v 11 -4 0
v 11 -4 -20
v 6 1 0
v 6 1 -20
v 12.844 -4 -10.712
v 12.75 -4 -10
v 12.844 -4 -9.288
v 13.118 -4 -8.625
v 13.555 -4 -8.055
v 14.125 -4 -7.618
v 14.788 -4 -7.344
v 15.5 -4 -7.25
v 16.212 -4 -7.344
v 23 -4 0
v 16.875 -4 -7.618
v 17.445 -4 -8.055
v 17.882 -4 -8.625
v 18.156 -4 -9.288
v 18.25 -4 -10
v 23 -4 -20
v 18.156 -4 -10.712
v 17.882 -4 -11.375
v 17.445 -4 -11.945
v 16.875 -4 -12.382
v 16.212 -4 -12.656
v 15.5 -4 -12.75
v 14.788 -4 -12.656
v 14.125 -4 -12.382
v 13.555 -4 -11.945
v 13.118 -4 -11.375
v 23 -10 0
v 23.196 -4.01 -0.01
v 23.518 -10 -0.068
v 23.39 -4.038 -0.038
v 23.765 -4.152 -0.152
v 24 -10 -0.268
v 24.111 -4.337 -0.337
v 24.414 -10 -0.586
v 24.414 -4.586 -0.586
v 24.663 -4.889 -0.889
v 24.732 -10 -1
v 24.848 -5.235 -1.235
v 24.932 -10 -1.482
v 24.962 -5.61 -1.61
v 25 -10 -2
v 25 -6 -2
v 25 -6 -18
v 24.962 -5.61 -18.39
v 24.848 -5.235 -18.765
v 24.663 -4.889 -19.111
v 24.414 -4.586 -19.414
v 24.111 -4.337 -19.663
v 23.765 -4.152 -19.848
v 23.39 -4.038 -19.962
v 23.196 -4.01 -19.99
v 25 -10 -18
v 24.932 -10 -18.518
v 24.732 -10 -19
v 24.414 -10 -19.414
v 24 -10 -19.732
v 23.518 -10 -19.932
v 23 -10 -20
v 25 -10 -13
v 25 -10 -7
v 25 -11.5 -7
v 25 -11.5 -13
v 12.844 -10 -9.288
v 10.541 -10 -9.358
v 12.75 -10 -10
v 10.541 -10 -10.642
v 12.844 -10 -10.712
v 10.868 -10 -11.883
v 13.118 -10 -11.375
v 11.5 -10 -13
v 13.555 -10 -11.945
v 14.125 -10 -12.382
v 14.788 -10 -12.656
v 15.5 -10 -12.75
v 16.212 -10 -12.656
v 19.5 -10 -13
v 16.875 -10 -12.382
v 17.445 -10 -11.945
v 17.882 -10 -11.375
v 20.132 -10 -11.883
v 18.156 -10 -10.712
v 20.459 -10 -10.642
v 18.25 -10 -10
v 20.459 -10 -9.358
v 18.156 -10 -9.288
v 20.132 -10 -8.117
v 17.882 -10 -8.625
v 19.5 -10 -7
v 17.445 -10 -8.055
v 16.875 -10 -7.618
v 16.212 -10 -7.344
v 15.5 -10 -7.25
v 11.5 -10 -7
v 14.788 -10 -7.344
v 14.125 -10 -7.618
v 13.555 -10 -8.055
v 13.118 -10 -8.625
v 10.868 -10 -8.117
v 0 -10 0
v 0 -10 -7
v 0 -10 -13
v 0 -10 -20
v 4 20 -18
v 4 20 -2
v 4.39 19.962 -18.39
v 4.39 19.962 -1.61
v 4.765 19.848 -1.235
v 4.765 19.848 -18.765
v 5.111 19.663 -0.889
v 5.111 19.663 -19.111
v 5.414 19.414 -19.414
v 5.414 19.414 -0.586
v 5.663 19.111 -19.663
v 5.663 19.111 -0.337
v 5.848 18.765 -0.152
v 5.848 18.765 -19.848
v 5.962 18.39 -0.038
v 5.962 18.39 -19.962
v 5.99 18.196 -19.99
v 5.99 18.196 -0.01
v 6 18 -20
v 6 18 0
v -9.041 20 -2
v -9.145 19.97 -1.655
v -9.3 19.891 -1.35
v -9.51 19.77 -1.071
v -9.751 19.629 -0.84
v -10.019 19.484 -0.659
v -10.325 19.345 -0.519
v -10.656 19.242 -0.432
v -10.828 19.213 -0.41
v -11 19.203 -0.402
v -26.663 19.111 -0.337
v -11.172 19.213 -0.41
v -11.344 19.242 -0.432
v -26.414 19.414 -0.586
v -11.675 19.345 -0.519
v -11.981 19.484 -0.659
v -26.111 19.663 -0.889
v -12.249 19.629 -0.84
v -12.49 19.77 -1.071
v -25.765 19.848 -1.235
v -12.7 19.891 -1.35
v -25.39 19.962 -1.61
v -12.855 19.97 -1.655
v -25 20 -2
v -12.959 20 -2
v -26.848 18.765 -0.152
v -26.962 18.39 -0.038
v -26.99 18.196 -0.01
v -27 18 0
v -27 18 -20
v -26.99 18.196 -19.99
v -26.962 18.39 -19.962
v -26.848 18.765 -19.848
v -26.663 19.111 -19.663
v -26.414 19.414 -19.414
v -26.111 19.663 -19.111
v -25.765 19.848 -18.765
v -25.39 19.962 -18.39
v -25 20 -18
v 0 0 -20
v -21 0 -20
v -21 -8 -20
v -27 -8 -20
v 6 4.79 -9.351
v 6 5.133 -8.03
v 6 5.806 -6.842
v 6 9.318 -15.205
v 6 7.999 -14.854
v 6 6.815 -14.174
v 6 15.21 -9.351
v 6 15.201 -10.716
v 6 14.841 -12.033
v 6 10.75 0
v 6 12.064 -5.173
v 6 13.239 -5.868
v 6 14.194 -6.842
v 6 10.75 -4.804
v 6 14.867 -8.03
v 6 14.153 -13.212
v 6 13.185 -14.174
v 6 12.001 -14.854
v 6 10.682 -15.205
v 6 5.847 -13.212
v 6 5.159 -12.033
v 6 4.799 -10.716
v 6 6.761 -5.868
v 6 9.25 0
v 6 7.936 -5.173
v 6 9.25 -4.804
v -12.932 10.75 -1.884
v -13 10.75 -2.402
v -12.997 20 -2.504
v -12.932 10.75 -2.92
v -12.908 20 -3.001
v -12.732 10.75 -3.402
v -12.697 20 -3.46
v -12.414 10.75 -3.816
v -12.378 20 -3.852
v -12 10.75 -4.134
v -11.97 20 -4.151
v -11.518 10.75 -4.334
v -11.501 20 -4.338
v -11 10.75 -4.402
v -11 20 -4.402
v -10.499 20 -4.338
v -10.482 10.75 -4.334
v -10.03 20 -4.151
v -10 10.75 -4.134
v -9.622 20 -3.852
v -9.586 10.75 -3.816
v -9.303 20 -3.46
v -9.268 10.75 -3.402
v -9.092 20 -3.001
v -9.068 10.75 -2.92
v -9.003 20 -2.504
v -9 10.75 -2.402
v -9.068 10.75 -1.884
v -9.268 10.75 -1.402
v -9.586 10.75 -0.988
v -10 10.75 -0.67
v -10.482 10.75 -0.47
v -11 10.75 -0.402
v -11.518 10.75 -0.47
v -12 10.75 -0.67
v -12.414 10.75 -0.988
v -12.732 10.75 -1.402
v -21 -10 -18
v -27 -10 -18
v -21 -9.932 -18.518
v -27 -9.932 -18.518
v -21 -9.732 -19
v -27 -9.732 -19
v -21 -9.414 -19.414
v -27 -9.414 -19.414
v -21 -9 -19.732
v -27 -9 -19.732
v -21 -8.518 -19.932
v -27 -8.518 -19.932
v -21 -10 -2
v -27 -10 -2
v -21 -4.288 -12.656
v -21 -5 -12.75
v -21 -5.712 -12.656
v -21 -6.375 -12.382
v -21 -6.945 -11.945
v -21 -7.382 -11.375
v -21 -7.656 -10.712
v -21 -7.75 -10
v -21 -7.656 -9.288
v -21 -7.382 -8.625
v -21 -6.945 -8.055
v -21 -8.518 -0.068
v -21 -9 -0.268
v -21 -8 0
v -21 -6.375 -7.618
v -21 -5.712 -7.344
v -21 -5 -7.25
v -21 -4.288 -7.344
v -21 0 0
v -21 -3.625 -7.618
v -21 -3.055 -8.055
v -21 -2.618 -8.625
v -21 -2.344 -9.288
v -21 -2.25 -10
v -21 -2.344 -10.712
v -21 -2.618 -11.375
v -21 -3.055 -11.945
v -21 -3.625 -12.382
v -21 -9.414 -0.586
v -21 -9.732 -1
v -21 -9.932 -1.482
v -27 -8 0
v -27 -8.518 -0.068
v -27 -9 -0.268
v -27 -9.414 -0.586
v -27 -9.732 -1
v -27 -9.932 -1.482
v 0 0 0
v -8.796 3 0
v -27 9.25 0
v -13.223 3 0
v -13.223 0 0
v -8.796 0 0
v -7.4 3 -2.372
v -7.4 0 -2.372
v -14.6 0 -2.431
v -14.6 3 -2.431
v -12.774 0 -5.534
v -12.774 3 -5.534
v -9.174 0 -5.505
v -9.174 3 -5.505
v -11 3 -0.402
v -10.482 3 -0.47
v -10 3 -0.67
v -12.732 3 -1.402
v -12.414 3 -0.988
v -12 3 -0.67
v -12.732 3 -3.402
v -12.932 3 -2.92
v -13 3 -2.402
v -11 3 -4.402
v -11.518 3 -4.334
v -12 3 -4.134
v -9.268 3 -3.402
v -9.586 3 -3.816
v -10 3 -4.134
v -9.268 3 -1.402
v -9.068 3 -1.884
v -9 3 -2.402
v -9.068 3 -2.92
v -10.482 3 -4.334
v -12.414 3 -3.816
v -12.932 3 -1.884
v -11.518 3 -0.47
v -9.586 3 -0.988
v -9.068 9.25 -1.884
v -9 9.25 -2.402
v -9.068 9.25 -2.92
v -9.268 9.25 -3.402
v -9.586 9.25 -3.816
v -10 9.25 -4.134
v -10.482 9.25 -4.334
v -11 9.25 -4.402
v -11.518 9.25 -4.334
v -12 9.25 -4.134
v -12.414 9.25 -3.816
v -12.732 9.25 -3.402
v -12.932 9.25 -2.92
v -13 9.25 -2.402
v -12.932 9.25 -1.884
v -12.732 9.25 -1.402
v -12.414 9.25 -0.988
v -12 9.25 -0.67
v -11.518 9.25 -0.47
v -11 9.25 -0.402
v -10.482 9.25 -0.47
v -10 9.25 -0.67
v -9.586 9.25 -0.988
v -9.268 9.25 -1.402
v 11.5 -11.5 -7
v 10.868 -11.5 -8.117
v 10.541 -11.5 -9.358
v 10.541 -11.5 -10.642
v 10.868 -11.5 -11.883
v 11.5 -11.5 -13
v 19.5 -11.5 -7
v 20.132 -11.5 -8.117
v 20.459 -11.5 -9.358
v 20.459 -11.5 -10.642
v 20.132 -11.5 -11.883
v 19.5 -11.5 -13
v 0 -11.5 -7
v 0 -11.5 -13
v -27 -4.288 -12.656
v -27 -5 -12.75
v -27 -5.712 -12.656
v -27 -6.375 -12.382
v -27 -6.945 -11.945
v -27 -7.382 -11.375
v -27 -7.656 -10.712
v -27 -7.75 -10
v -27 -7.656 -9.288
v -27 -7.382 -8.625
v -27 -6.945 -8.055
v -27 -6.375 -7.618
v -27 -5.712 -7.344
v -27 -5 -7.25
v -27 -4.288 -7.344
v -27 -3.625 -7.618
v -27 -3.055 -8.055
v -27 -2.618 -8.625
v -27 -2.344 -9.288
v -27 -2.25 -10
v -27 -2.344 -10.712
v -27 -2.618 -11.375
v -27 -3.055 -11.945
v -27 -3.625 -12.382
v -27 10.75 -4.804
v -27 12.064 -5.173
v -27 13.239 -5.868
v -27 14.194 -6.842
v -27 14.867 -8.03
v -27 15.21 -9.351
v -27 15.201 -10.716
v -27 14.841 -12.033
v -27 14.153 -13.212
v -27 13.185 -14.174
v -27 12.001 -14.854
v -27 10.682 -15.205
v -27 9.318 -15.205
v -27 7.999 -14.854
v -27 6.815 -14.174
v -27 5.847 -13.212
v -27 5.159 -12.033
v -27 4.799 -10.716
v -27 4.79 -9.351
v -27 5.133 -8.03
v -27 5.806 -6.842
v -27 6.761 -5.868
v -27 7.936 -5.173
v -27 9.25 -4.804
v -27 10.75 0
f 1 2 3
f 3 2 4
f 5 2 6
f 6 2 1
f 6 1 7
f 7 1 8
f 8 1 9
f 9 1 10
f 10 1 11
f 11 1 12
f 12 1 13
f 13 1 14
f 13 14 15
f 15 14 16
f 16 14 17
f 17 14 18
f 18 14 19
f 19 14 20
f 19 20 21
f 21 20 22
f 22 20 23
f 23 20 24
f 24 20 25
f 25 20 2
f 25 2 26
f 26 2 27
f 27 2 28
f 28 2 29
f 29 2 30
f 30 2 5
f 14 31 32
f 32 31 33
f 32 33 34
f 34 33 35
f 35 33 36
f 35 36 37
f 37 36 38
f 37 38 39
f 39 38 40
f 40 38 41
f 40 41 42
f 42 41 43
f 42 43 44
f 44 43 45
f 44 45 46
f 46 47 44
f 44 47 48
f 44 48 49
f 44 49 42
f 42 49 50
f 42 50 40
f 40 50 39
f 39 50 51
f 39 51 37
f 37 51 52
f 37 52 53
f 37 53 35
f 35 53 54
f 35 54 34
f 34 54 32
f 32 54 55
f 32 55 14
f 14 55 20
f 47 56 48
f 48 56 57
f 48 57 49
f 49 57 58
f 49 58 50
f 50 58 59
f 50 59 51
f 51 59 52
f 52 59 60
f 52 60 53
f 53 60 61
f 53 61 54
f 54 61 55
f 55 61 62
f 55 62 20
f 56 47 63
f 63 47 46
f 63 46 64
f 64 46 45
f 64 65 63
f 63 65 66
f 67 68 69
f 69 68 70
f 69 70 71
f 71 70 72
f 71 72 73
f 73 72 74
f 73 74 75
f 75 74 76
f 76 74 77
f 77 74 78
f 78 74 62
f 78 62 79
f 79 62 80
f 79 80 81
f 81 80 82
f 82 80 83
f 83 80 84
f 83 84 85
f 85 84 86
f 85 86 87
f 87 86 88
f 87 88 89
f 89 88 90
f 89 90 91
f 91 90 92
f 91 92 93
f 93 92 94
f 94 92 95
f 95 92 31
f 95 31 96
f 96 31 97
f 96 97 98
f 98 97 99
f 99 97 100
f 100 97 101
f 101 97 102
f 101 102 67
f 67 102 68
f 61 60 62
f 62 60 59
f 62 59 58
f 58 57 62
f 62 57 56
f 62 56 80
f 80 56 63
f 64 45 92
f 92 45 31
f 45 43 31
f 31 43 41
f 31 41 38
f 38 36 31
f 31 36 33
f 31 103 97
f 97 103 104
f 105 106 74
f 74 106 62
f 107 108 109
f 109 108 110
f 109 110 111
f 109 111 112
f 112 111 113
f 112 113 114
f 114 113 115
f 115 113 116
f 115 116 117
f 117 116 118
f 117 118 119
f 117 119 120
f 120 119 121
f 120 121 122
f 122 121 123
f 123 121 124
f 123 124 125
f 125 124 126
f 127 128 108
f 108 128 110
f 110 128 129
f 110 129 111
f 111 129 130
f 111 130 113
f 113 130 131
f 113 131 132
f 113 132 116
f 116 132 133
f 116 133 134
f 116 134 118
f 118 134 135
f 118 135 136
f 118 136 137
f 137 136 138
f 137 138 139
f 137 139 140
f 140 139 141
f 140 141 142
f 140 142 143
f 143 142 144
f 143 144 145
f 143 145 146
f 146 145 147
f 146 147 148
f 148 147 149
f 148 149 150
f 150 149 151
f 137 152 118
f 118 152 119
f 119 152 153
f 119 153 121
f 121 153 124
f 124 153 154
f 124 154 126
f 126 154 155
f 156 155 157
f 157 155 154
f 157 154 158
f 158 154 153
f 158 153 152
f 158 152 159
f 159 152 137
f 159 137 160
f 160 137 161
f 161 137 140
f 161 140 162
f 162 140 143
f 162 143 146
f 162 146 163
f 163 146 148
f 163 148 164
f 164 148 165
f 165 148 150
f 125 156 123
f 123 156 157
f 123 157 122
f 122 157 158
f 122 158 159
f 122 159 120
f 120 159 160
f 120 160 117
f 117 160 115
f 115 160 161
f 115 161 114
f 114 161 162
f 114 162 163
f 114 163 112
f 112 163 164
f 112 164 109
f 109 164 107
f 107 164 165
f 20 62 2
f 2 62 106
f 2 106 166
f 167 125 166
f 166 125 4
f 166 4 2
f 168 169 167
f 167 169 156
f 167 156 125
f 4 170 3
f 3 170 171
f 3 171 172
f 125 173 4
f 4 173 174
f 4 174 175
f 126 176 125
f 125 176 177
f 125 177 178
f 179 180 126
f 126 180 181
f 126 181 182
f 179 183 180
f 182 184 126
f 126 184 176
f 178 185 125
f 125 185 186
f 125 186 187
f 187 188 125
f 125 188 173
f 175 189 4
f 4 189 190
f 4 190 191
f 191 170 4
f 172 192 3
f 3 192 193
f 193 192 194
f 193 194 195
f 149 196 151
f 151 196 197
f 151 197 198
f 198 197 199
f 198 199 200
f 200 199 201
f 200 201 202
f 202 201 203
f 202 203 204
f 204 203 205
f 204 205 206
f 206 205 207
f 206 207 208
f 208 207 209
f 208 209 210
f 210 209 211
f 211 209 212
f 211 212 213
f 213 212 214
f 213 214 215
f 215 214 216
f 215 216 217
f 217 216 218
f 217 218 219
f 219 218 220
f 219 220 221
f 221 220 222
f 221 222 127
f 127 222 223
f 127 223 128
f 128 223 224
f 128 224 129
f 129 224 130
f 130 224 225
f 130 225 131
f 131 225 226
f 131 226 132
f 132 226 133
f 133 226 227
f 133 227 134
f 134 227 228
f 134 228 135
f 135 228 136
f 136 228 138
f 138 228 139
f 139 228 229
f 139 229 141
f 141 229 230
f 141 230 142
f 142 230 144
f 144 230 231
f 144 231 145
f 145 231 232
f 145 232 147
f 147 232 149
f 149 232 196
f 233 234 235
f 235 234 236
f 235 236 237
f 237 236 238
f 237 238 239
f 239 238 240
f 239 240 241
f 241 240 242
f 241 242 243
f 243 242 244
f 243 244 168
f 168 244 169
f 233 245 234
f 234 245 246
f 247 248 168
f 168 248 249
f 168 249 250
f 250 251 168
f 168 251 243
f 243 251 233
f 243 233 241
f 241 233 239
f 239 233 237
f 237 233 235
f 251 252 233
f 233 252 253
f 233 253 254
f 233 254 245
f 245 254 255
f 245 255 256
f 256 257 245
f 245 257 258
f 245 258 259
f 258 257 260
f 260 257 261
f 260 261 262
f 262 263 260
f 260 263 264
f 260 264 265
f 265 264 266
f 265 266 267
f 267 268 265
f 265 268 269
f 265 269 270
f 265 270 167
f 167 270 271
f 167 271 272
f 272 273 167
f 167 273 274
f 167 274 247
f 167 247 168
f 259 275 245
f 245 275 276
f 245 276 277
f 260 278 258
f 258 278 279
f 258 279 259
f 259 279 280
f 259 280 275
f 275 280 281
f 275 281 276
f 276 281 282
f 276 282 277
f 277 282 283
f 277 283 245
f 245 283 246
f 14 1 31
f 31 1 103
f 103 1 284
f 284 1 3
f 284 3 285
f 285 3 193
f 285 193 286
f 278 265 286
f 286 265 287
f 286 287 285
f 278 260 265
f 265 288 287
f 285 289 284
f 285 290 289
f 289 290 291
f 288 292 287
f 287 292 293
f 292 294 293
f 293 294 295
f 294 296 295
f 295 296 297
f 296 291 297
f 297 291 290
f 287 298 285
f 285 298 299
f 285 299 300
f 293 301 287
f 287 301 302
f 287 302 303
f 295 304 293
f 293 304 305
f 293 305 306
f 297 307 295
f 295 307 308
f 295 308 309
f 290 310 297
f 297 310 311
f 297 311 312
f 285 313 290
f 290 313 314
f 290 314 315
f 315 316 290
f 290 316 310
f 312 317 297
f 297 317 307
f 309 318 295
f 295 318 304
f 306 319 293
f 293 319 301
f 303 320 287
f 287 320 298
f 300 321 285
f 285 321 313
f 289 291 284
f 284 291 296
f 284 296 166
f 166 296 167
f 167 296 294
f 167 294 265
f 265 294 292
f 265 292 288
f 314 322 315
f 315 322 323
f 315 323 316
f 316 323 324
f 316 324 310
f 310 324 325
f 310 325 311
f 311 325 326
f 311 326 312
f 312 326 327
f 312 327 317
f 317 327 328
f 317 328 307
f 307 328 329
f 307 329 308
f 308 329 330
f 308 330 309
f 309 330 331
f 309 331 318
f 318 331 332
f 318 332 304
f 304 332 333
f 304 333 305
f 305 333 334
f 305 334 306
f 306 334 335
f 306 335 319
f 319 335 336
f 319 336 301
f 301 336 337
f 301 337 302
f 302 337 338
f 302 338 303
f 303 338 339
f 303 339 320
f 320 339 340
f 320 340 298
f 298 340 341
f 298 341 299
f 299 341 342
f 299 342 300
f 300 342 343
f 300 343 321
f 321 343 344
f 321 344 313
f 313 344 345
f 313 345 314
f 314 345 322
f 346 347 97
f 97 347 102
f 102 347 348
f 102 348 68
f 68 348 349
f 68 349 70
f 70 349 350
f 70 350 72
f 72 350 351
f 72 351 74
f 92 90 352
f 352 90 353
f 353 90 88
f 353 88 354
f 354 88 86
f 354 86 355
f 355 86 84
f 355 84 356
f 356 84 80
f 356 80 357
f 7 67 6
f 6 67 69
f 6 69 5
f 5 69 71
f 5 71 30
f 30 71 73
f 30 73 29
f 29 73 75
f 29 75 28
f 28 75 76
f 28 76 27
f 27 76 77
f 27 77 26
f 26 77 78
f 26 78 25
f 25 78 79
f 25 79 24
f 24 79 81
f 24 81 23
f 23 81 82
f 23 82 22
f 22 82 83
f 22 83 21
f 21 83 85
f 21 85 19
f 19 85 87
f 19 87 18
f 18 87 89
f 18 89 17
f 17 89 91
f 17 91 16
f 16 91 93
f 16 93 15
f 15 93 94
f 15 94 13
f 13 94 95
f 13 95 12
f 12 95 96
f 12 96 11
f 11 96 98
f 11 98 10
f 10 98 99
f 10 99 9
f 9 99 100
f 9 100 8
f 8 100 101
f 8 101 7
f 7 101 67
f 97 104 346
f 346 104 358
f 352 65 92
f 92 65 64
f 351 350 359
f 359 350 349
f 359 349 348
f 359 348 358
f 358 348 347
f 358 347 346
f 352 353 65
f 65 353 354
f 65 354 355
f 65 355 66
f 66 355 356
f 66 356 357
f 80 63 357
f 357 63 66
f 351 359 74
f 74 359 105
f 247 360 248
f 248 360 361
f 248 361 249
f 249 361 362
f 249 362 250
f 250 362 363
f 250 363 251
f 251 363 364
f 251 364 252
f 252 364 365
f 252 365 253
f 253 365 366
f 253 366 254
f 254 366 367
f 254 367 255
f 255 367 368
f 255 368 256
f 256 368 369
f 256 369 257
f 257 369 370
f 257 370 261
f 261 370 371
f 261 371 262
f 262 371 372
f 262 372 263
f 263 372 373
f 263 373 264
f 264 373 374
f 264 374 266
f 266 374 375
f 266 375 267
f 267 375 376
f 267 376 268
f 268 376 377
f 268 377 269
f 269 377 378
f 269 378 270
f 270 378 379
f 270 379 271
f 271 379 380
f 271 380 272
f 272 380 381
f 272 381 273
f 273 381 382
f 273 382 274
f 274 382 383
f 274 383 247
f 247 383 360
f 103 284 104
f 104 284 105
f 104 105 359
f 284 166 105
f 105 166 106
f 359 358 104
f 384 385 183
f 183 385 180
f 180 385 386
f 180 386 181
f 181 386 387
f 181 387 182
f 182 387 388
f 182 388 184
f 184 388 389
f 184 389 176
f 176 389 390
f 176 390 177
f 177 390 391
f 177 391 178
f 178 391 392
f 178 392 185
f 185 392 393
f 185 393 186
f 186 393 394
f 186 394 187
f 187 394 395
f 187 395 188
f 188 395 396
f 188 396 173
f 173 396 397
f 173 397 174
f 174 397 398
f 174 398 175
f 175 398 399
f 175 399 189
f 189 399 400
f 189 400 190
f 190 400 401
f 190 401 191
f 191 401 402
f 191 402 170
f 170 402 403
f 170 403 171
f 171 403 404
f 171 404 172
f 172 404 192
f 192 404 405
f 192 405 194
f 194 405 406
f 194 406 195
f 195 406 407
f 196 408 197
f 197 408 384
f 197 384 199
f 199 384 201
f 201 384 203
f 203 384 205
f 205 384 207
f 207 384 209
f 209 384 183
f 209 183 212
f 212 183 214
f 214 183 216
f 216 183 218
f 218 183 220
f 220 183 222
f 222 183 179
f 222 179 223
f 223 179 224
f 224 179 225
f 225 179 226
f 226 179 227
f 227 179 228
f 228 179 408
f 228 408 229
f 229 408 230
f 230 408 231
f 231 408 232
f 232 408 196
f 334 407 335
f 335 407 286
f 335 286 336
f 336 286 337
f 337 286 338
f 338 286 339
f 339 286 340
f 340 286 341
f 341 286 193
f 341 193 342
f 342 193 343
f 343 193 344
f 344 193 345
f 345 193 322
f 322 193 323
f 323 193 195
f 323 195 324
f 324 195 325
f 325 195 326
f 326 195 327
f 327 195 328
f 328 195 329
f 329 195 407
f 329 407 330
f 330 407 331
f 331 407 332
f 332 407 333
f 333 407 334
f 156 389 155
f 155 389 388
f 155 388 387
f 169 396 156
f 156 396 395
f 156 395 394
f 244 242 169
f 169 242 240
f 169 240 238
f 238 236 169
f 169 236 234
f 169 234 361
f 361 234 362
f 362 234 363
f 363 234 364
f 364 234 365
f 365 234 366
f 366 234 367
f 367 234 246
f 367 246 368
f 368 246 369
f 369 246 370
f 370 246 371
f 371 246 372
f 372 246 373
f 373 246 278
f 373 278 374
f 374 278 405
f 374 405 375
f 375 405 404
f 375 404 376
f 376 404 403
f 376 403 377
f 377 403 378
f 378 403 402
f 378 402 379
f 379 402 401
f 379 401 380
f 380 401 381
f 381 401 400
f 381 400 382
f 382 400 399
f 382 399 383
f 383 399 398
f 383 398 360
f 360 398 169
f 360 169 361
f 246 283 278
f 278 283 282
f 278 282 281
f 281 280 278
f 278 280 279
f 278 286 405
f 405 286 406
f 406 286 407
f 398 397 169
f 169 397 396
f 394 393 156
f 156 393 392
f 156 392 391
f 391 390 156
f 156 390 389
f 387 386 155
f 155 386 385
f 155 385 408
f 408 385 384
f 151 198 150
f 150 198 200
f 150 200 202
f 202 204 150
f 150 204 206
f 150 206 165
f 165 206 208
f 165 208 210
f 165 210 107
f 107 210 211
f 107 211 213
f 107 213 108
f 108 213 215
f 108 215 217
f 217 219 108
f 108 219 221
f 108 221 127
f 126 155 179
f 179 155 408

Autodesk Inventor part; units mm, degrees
ref_plane "YZ Plane" through (0, 0, 0) normal (1, 0, 0) x (0, 1, 0)
ref_plane "XZ Plane" through (0, 0, 0) normal (0, 1, 0) x (-1, 0, 0)
ref_plane "XY Plane" through (0, 0, 0) normal (0, 0, 1) x (1, 0, 0)
sketch "Sketch2" plane through (0, 0, 0) normal (0, 0, 1) x (1, 0, 0)
  line L0 (0, 0) -> (0, -10)
  line L1 (0, 0) -> (-27, 0)
  line L2 (-27, 0) -> (-27, 20)
  line L3 (-27, 20) -> (6, 20)
  line L4 (0, -10) -> (25, -10)
  line L5 (25, -10) -> (25, -4)
  line L6 (25, -4) -> (6, -4)
  line L7 (6, 20) -> (6, -4)
  dimension "d4" = 10
  dimension "d5" = 27
  dimension "d6" = 20
  dimension "d7" = 33
  dimension "d9" = 25
  dimension "d10" = 6
extrude "Extrusion6" add sketch "Sketch2" against normal blind 20
sketch "Sketch9" plane through (6, -4, 0) normal (1, 0, 0) x (0, 0, -1)
  line L0 (0, 4) -> (20, 4) projected
  line L1 (20, 24) -> (20, 0) projected
  line L2 (0, 4) -> (20, 24)
  arc A0 (4.8038, 13.25) -> (4.8038, 14.75) centre (10, 14) ccw
  line L3 (4.8038, 14.75) -> (0, 14.75)
  line L4 (4.8038, 13.25) -> (0, 13.25)
  line L5 (0, 13.25) -> (0, 14.75)
  line L6 (0, 0) -> (0, 24) projected
  dimension "d28" = 10.5
extrude "Extrusion7" cut sketch "Sketch9" against normal through all contours A0 L4 L5 L3 L2 | L2 A0
sketch "Sketch10" plane through (-27, 0, 0) normal (0, -1, 0) x (1, 0, 0)
  line L0 (33, 0) -> (0, 0) projected
  line L1 (0, 0) -> (6, 0)
  line L2 (6, 0) -> (6, -20)
  line L3 (6, -20) -> (0, -20)
  line L4 (0, -20) -> (0, 0)
  point P0 (27, 0)
  dimension "d33" = 6
  dimension "d34" = 20
extrude "Extrusion8" add sketch "Sketch10" along normal blind 10
sketch "Sketch11" plane through (-27, 20, -20) normal (-1, 0, 0) x (0, 0, 1)
  line L0 (20, -30) -> (0, -30) projected
  line L1 (20, -20) -> (20, -30) projected
  line L2 (0, -30) -> (20, -20)
  point P0 (10, -25)
hole "Hole1" at (-27, -5, -10) direction (1, 0, 0) diameter 5.5 end up to surface
sketch "Sketch13" plane through (0, -10, 0) normal (0, -1, 0) x (1, 0, 0)
  line L0 (0, -13) -> (25, -13)
  line L1 (0, -7) -> (25, -7)
  line L2 (0, -13) -> (0, -7)
  line L3 (0, 0) -> (0, -20) projected
  line L4 (25, -7) -> (25, -13)
  line L5 (0, 0) -> (25, 0) projected
  dimension "d69" = 25
extrude "Extrusion9" add sketch "Sketch13" along normal blind 1.5
sketch "Sketch14" plane through (0, -11.5, 0) normal (0, -1, 0) x (1, 0, 0)
  line L0 (0, -7) -> (25, -7) projected
  line L1 (25, -13) -> (0, -13) projected
  line L2 (0, -13) -> (25, -13) projected
  line L3 (25, 0) -> (25, -7) projected
  point P0 (0, 0)
  point P1 (15.5, -10)
  dimension "d70" = 9.5
hole "Hole2" at (15.5, -11.5, -10) direction (0, 1, 0) diameter 5.5 end through all counterbore diameter 10 counterbore depth 1.5
sketch "Sketch15" plane through (-27, 20, 0) normal (0, 1, 0) x (1, 0, 0)
  line L0 (33, 4.8038) -> (0, 4.8038) projected
  point P0 (27, 0)
  point P1 (16, 2.4019)
hole "Hole3" at (-11, 20, -2.4019) direction (0, -1, 0) diameter 4 end through all
sketch "Sketch16" plane through (0, 0, -20) normal (0, -1, 0) x (1, 0, 0)
  circle A0 centre (-11, 17.5981) radius 2 projected
  line L0 (-7.4, 17.6276) -> (-9.1744, 14.4952)
  line L1 (-9.1744, 14.4952) -> (-12.7744, 14.4656)
  line L2 (-12.7744, 14.4656) -> (-14.6, 17.5685)
  line L3 (-14.6, 17.5685) -> (-12.8256, 20.701)
  line L4 (-12.8256, 20.701) -> (-9.2256, 20.7305)
  line L5 (-9.2256, 20.7305) -> (-7.4, 17.6276)
  point P0 (0, 20)
  point P1 (-11, 17.5981)
  dimension "d65" = 7.2
extrude "Extrusion10" cut sketch "Sketch16" against normal blind 3
fillet "Fillet2" radius 2 9 edges at (-24, -10, 0) (-24, -10, -20) (-27, 20, -10) (6, 20, -10) (-10.5, 20, -20) (-10.5, 20, 0) (25, -7, -20) (25, -4, -10) (25, -7, 0)
chamfer "Chamfer3" distance 5 angle 45 1 edges at (6, -4, -10)
properties part number "EixoXY - Canto"
